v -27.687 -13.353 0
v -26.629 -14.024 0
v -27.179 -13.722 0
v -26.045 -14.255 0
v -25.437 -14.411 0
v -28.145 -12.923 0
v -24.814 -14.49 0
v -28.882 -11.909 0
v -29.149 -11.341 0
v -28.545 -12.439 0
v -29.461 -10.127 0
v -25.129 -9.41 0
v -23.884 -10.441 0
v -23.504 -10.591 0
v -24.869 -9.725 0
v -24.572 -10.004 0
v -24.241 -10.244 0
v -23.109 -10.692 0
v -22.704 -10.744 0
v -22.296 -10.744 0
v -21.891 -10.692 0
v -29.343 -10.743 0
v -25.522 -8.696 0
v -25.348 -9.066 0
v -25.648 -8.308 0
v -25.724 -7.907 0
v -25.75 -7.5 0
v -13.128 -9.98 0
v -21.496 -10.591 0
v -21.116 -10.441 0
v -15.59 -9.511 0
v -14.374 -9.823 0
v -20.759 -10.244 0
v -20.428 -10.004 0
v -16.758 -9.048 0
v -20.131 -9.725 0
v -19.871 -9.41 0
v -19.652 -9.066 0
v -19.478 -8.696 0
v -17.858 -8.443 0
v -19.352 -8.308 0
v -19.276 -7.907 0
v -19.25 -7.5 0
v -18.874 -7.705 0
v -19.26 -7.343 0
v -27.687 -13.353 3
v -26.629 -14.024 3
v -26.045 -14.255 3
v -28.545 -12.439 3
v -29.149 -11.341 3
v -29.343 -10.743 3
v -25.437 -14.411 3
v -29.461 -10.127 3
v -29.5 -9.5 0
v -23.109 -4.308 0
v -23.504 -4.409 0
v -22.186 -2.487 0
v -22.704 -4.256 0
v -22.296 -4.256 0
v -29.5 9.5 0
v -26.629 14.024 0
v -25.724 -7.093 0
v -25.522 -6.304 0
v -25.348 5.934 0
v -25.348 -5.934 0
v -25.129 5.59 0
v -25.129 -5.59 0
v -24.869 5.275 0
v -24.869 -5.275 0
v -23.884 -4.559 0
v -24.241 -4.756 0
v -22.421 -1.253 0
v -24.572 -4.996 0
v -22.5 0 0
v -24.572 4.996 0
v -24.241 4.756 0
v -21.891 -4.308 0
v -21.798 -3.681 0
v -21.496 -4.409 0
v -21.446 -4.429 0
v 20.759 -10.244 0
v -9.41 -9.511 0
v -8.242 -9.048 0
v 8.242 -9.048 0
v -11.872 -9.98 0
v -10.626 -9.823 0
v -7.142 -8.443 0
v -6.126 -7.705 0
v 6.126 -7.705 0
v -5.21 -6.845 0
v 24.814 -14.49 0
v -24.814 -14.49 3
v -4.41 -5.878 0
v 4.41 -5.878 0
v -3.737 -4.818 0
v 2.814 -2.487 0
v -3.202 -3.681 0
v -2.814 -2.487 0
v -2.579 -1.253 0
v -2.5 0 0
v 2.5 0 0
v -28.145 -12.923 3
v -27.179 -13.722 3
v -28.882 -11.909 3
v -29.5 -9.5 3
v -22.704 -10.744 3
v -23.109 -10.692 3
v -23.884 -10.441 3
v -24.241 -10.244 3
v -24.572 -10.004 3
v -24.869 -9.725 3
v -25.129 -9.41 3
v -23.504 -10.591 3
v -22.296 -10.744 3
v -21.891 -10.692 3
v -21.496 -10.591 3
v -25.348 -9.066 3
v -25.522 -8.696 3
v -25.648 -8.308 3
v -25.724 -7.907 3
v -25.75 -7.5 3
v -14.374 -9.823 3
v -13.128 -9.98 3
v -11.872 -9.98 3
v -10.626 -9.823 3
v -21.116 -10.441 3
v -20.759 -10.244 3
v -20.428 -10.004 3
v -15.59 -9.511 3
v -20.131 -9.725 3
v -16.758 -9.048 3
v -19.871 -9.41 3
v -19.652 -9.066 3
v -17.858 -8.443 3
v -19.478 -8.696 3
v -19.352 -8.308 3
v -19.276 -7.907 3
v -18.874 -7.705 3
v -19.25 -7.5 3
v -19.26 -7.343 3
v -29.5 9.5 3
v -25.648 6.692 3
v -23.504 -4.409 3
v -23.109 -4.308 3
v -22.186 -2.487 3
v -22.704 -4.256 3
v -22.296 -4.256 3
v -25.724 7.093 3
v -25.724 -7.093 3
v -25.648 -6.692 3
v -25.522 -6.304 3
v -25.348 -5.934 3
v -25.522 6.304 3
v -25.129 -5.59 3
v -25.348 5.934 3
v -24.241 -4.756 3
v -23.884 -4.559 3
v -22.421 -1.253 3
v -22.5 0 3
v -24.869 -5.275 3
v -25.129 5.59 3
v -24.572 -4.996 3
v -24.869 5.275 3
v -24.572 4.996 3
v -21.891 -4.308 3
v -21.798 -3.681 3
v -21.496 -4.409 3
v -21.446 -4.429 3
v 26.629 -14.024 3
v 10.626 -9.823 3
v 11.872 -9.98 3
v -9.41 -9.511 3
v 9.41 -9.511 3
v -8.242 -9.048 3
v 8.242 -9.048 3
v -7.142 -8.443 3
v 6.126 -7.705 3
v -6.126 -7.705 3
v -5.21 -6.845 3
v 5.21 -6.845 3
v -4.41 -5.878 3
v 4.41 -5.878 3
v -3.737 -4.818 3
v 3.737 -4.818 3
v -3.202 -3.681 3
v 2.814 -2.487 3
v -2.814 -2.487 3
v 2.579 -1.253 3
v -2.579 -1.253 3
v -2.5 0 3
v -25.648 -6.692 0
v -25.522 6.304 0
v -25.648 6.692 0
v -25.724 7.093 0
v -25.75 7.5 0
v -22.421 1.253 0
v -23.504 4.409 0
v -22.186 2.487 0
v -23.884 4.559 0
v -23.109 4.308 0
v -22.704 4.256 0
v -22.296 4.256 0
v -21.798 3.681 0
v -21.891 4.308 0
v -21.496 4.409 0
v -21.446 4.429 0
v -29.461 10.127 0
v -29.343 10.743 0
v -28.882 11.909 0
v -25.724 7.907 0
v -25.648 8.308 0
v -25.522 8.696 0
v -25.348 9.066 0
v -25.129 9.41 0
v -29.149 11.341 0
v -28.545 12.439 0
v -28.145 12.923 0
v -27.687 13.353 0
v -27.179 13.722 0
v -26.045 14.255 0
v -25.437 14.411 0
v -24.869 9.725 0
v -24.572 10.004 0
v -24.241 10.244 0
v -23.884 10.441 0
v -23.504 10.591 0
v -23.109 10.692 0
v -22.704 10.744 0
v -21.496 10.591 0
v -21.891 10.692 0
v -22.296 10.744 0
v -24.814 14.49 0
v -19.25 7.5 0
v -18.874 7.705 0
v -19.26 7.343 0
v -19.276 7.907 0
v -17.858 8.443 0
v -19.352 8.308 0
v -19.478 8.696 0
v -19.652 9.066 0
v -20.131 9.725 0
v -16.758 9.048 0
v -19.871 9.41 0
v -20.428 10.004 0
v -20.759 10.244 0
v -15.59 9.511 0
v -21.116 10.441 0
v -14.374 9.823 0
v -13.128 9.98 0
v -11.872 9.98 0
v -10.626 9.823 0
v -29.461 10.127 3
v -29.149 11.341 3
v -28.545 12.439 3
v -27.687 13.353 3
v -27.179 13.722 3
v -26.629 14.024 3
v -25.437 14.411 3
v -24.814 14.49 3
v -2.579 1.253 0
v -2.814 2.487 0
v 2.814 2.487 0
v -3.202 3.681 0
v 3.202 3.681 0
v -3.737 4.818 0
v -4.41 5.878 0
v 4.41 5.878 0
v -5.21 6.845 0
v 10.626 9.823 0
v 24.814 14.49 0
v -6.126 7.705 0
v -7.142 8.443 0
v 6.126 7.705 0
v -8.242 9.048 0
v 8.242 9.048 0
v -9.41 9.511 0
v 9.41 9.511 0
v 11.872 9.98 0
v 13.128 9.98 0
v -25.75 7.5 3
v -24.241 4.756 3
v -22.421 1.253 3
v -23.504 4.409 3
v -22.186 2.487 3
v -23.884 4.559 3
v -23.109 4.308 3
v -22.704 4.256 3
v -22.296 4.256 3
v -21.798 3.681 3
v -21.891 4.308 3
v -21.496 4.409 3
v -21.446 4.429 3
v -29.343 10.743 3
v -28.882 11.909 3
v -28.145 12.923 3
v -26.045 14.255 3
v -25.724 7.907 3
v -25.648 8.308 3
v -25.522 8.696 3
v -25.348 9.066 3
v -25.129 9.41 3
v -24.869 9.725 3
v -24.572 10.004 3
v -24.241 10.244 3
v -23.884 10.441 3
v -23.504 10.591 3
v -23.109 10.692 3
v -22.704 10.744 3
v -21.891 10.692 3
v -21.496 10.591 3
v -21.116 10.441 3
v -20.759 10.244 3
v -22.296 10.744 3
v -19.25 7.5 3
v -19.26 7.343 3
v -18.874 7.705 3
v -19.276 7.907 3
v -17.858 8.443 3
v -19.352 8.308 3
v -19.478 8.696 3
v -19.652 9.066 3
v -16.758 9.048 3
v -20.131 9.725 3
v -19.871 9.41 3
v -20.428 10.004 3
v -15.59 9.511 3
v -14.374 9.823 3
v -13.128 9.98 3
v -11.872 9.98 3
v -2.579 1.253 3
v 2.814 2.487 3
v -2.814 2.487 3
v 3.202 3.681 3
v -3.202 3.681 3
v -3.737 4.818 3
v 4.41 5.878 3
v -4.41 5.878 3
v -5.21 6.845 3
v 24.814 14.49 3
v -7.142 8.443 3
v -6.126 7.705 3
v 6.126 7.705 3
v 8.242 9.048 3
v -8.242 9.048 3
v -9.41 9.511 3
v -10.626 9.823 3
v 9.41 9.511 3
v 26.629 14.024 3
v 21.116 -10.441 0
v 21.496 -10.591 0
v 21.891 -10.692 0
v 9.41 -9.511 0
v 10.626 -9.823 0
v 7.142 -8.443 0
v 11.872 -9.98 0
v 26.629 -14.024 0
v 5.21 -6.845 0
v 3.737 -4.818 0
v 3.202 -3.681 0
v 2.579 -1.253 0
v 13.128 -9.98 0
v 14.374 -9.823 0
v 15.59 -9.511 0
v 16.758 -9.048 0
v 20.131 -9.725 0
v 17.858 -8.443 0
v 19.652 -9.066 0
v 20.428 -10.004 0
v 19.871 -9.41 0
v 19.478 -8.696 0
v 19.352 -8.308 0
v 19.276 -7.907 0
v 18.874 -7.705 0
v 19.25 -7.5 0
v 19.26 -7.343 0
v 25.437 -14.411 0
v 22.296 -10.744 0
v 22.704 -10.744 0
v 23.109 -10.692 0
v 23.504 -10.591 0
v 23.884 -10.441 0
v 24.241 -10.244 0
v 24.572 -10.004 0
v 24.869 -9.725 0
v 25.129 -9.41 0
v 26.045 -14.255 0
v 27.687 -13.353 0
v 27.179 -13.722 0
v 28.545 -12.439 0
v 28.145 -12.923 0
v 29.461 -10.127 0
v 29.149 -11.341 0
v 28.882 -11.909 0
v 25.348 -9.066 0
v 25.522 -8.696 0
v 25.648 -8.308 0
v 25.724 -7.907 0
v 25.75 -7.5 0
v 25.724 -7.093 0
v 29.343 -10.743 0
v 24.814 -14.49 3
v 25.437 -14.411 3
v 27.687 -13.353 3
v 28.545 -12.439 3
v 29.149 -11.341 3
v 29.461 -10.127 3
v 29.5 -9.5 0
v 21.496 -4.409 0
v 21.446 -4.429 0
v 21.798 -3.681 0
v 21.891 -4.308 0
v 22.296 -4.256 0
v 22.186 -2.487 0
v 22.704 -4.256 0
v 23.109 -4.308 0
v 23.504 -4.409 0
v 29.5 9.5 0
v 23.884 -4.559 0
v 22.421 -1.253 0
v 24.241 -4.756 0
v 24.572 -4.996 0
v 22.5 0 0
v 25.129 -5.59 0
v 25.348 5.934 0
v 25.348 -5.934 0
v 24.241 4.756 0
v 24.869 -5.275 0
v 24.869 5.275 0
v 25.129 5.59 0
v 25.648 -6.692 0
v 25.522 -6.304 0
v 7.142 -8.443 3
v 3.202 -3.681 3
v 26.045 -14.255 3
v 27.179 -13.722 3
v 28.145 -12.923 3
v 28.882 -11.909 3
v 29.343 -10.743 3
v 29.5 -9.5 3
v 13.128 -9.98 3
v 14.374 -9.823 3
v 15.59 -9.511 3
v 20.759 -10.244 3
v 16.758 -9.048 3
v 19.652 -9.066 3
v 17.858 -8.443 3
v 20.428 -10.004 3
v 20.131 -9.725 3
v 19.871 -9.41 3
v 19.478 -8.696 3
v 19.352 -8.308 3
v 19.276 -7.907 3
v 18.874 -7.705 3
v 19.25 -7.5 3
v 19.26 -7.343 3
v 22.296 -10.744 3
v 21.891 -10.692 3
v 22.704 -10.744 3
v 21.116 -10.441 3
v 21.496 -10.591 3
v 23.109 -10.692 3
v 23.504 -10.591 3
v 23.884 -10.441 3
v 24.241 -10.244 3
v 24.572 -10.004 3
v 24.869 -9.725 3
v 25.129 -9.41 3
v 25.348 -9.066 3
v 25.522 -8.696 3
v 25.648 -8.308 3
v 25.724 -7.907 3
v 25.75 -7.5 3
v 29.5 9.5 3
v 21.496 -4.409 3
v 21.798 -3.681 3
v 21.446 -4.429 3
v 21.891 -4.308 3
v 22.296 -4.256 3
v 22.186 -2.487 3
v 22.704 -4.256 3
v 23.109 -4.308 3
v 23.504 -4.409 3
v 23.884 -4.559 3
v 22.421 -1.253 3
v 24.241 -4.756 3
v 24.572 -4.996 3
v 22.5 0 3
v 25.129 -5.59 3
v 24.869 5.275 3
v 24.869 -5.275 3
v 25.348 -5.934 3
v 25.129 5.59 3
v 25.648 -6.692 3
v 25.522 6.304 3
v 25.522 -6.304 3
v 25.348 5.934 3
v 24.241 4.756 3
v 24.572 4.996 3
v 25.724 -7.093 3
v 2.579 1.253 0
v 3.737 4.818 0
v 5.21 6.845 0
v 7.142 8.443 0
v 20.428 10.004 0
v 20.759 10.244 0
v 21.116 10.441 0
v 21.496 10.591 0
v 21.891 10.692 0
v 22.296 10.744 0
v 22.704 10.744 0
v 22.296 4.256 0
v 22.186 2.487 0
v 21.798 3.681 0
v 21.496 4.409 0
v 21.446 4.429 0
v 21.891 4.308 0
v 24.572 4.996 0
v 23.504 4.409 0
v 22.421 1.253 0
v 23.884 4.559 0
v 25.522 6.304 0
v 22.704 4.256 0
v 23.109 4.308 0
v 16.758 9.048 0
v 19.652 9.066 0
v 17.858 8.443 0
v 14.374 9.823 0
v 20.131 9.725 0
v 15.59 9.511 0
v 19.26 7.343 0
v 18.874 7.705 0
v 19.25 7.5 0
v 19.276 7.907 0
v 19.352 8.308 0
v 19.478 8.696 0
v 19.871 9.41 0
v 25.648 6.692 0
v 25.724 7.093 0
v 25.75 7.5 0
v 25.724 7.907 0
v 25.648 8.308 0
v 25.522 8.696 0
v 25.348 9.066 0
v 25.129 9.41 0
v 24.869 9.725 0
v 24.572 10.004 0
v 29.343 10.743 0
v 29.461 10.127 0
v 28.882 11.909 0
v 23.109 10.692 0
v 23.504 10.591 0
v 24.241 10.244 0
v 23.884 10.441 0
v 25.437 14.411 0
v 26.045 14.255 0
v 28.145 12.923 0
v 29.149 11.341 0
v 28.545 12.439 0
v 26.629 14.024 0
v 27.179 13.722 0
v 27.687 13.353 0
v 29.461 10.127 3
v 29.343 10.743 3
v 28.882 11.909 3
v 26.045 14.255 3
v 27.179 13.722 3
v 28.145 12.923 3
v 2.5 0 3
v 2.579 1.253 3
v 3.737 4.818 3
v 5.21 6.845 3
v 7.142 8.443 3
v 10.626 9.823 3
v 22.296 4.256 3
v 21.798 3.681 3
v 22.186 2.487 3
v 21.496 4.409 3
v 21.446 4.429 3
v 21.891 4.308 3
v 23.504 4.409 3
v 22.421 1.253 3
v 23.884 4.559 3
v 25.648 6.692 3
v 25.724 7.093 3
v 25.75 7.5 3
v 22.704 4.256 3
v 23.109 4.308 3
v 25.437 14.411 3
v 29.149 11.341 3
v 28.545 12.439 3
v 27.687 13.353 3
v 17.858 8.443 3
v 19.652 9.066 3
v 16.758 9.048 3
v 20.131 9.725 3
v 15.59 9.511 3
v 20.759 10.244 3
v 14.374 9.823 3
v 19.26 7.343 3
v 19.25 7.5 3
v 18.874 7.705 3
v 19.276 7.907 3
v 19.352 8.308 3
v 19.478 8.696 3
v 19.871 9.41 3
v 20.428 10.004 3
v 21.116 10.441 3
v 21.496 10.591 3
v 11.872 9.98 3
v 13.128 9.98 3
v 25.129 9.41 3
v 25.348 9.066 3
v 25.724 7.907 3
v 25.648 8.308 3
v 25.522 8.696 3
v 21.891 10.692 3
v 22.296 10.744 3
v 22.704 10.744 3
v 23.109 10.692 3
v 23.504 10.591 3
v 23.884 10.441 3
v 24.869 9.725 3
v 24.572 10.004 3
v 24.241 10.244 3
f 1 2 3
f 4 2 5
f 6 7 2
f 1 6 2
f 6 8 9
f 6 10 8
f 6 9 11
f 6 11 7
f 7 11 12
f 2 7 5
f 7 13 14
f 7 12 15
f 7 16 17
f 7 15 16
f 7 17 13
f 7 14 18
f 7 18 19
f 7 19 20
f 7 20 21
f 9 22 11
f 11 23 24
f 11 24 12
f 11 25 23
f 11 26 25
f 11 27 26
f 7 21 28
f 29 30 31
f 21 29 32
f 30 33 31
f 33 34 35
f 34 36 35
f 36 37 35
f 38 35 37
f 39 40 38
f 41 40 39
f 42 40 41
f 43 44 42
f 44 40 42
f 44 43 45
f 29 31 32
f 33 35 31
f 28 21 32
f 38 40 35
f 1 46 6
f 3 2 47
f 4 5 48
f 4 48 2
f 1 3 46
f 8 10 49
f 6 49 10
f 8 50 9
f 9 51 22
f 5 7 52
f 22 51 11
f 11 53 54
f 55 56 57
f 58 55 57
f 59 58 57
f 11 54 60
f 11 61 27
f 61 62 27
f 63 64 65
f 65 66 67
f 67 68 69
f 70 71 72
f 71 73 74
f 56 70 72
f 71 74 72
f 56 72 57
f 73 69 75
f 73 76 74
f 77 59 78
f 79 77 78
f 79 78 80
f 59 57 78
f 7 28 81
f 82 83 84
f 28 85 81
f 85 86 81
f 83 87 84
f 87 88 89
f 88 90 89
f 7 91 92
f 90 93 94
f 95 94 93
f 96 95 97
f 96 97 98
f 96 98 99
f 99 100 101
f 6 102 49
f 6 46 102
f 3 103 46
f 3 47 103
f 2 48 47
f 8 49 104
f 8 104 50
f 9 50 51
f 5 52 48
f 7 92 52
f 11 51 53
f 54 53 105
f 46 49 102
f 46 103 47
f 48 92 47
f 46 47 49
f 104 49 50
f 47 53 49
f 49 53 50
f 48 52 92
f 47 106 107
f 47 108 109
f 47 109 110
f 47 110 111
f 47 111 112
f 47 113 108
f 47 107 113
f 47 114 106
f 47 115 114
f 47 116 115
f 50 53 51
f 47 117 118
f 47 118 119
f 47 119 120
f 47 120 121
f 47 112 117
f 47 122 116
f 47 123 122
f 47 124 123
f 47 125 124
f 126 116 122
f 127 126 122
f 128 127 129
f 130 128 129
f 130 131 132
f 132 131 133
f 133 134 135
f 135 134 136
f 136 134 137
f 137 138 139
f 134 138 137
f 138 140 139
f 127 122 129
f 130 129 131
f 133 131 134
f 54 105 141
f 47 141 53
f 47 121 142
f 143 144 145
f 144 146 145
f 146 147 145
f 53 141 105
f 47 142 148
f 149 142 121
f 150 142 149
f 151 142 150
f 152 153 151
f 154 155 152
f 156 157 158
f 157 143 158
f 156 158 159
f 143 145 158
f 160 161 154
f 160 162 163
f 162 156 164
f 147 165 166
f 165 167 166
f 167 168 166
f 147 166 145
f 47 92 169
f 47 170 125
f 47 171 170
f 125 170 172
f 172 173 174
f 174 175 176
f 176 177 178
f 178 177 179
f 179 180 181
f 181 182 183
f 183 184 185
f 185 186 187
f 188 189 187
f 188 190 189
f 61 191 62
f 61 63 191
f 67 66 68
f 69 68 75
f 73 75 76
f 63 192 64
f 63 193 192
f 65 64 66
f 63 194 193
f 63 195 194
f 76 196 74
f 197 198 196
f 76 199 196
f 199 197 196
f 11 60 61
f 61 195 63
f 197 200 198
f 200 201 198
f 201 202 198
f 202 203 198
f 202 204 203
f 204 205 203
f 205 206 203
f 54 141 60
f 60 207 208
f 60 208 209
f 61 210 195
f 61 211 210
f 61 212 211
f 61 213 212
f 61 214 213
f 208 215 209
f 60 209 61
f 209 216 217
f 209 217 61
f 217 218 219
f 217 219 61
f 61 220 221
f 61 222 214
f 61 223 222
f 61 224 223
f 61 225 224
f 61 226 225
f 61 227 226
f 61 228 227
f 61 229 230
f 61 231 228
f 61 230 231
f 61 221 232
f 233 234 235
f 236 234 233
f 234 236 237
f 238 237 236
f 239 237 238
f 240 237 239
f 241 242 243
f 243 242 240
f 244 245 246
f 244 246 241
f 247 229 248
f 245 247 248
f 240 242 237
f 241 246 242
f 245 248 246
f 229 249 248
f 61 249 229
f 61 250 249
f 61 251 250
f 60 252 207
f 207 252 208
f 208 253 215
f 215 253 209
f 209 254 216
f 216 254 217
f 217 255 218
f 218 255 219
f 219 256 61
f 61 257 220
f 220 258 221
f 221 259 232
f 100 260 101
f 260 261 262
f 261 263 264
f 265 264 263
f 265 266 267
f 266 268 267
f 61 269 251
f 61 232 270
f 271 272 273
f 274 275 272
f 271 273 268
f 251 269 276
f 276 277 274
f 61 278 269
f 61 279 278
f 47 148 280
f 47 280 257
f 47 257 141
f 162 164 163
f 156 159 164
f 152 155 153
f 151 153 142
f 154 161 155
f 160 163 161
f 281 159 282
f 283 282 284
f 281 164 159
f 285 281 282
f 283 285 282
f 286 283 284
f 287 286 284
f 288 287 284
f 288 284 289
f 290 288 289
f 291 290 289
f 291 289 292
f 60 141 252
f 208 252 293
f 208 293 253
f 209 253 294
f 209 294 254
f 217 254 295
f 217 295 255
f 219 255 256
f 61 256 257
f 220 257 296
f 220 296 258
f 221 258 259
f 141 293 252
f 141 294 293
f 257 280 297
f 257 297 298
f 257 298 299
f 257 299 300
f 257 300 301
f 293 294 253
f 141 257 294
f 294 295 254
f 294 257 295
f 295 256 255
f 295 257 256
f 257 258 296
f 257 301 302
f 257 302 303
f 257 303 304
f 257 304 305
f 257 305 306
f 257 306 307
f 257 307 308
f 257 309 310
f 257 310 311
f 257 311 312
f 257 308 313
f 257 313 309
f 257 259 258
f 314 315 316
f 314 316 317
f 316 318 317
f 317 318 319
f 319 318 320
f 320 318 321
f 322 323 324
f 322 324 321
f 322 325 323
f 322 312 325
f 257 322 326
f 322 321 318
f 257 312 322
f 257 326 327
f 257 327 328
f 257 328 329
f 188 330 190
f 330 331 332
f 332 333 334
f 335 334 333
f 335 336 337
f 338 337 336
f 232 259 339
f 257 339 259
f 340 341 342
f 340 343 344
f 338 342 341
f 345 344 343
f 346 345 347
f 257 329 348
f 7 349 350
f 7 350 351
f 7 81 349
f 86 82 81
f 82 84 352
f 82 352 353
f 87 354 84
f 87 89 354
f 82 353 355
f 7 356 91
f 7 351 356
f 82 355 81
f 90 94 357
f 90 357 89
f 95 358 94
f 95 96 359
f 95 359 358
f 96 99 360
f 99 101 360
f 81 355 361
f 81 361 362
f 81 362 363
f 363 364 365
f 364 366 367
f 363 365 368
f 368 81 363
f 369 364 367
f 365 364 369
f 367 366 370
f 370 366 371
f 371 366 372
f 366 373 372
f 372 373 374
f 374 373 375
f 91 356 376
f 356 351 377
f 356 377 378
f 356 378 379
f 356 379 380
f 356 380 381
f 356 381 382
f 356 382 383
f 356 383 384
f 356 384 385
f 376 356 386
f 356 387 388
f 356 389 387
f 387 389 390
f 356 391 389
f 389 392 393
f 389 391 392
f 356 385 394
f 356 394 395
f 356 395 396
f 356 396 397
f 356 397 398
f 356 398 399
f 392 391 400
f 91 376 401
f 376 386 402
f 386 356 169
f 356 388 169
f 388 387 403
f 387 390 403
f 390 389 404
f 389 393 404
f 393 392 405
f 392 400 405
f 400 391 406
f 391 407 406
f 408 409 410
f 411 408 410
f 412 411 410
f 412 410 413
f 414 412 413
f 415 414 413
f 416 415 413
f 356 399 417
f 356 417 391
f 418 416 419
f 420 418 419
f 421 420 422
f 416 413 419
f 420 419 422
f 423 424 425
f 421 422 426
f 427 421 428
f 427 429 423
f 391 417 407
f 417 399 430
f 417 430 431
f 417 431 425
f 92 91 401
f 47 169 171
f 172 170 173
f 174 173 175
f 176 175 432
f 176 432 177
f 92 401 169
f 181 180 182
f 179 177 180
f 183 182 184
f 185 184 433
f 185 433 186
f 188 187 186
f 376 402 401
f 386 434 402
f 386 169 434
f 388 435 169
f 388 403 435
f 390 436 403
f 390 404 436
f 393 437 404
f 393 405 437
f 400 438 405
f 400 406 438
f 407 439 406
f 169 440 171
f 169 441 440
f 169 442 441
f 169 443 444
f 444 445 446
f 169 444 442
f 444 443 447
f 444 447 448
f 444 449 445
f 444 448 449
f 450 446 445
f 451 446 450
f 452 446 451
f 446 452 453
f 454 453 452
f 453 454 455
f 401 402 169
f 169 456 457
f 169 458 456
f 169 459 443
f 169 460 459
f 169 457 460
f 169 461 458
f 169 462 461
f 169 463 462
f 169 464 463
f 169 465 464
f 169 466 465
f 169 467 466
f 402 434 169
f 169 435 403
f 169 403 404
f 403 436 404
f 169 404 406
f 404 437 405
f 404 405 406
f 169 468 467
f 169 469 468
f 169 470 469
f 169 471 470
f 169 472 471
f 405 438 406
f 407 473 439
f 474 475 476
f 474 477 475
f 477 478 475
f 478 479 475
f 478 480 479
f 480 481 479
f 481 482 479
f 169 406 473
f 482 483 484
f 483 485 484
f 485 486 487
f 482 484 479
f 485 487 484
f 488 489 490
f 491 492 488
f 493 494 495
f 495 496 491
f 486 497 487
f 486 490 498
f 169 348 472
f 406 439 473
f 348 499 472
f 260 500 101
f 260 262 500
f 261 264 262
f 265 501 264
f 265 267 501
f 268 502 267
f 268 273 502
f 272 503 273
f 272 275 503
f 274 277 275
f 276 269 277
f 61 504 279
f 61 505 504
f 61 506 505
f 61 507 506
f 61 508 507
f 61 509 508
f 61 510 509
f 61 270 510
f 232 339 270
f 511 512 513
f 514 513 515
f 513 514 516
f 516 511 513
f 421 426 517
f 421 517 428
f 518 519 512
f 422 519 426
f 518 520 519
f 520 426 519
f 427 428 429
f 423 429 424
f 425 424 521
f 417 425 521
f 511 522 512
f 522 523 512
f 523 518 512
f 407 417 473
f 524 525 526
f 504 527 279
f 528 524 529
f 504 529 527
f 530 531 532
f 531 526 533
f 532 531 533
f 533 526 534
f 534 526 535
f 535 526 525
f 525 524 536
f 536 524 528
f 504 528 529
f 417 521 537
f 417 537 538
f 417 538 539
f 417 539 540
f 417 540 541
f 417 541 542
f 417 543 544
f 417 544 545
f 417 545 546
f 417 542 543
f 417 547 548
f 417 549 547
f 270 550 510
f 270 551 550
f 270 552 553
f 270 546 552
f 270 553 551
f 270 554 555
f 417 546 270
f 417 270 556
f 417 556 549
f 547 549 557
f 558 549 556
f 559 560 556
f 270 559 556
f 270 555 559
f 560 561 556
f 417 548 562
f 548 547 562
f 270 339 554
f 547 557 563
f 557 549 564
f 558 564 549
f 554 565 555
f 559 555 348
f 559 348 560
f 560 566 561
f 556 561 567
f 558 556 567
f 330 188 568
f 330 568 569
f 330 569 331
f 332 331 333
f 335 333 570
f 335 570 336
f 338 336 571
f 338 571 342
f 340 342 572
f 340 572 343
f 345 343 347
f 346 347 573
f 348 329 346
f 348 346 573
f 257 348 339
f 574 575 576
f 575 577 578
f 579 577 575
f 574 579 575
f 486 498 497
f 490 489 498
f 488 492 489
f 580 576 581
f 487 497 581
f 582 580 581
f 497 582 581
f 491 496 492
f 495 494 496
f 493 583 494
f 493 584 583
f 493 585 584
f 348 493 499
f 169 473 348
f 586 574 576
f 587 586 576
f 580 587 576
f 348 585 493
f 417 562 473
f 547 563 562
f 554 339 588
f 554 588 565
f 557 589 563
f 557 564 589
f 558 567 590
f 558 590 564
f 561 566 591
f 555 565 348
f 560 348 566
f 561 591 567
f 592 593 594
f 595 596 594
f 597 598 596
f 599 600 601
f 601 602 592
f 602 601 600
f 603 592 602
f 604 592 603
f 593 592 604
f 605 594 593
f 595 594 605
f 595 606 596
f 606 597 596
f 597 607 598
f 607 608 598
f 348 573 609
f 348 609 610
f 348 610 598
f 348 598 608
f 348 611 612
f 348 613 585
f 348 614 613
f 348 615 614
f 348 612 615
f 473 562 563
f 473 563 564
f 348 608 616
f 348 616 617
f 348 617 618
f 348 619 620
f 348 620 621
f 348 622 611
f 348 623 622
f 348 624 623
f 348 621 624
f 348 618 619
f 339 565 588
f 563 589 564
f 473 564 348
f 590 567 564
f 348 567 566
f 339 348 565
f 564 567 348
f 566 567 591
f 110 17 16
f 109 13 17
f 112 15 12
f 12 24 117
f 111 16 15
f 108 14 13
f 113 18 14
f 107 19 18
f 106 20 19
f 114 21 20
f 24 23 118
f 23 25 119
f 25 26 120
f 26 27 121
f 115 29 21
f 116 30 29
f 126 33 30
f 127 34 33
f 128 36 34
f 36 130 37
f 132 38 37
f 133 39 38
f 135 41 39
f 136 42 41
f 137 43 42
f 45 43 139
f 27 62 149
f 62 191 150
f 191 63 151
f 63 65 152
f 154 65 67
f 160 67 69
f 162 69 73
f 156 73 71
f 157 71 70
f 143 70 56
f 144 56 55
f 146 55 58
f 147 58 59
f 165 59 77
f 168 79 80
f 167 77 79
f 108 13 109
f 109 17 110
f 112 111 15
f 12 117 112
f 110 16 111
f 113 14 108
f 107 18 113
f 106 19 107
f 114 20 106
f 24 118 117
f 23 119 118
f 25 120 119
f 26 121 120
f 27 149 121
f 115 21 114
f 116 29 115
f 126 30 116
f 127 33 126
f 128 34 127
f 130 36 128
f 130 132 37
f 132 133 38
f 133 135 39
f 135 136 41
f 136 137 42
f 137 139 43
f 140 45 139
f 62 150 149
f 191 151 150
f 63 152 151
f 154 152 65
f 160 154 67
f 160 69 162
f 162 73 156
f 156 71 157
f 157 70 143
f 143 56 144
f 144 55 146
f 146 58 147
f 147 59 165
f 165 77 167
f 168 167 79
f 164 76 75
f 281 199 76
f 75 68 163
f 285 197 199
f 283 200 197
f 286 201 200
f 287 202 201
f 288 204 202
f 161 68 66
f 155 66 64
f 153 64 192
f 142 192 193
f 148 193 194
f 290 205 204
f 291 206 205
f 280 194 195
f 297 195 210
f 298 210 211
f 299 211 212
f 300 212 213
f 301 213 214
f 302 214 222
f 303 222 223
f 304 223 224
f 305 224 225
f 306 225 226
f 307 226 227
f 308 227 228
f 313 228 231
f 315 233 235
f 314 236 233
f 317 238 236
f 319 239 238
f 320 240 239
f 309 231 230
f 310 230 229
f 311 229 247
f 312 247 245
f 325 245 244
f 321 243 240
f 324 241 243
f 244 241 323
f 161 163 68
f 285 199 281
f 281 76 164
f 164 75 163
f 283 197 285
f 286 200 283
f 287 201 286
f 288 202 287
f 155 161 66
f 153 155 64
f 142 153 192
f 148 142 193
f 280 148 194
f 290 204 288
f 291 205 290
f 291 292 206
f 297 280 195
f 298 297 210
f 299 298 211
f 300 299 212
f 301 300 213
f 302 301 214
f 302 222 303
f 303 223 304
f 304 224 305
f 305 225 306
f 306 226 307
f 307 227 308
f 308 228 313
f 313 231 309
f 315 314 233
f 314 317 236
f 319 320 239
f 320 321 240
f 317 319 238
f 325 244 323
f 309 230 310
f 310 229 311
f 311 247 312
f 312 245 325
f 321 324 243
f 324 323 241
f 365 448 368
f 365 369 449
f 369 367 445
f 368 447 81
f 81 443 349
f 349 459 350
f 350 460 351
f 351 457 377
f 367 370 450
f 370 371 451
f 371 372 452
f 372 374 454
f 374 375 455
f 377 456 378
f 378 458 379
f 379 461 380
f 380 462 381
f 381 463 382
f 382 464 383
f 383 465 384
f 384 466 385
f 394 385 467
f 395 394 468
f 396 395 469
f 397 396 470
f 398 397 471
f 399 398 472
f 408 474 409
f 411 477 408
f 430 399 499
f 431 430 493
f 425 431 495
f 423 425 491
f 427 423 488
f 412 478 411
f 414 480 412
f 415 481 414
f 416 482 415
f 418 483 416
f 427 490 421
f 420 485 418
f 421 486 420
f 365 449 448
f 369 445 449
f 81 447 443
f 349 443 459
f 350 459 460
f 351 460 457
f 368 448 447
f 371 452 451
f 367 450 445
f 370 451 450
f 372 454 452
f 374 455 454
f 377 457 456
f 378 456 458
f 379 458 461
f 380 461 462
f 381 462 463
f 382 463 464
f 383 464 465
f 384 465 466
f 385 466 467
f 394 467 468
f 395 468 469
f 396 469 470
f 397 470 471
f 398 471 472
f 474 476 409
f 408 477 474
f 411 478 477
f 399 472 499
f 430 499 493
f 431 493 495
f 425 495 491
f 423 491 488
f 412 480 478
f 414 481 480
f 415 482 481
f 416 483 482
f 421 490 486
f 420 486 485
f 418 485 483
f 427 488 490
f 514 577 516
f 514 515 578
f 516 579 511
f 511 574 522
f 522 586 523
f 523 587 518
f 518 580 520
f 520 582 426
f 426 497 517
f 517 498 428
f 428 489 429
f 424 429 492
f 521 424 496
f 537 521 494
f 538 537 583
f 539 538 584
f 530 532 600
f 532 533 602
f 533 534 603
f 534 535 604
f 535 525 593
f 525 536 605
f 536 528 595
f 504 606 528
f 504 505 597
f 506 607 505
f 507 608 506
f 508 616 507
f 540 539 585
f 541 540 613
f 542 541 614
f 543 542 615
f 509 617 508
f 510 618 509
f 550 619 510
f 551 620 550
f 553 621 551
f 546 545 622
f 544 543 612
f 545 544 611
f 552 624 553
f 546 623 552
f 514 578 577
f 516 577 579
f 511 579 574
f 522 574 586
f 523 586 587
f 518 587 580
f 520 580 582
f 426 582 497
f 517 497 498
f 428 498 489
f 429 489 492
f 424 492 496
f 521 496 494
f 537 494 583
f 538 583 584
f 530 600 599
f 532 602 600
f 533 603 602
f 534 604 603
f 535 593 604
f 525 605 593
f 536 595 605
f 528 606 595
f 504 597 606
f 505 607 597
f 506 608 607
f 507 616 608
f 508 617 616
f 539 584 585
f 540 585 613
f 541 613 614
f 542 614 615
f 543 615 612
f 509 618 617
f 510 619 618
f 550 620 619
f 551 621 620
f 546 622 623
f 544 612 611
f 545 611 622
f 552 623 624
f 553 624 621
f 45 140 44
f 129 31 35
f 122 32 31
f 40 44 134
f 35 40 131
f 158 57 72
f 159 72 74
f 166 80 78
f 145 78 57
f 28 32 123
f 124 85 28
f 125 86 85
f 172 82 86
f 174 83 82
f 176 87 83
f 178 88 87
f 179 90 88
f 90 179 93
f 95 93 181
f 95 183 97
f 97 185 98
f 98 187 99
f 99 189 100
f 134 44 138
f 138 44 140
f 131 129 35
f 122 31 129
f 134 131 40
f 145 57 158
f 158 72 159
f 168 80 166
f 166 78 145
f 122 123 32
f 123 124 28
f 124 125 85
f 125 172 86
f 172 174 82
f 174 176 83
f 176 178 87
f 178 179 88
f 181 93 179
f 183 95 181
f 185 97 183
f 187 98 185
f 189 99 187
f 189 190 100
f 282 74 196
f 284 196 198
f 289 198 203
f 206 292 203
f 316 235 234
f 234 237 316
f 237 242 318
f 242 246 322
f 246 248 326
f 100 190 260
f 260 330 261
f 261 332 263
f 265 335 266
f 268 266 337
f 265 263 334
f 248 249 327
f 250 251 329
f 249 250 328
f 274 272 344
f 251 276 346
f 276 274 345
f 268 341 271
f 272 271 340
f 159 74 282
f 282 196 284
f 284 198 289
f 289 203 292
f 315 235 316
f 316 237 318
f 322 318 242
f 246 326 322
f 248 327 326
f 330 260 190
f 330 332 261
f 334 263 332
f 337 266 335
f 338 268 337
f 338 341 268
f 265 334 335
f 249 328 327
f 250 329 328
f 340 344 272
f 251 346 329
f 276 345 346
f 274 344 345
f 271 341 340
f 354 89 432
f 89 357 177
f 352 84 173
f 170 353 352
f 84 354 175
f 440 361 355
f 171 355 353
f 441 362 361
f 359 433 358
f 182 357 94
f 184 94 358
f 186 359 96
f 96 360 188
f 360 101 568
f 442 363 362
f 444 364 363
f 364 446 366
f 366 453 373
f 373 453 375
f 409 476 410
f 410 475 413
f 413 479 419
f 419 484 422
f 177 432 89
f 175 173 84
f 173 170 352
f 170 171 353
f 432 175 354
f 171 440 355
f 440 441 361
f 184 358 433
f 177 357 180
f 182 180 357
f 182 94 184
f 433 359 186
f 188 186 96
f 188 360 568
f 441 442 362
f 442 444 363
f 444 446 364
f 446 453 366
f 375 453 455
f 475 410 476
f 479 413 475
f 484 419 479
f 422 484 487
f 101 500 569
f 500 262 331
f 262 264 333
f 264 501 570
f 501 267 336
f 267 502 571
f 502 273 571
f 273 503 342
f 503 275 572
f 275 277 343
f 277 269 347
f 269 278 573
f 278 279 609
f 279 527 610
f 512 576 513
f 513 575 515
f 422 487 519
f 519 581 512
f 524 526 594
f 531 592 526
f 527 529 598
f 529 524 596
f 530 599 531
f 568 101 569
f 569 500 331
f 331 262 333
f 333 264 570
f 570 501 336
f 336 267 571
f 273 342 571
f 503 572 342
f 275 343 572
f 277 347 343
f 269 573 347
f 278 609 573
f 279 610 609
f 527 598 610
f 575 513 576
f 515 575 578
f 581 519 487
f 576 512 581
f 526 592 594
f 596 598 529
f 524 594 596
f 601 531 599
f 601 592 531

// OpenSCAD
$fn = 50;

difference() {
	union() {
		hull() {
			translate(v = [-24.5, 9.5, 0]) {
				cylinder(h = 3, r = 5);
			}
			translate(v = [24.5, 9.5, 0]) {
				cylinder(h = 3, r = 5);
			}
			translate(v = [-24.5, -9.5, 0]) {
				cylinder(h = 3, r = 5);
			}
			translate(v = [24.5, -9.5, 0]) {
				cylinder(h = 3, r = 5);
			}
		}
	}
	union() {
		translate(v = [-22.5, -7.5, -100.0]) {
			cylinder(h = 200, r = 3.25);
		}
		translate(v = [-22.5, 7.5, -100.0]) {
			cylinder(h = 200, r = 3.25);
		}
		translate(v = [22.5, -7.5, -100.0]) {
			cylinder(h = 200, r = 3.25);
		}
		translate(v = [22.5, 7.5, -100.0]) {
			cylinder(h = 200, r = 3.25);
		}
		translate(v = [-22.5, -7.5, -100.0]) {
			cylinder(h = 200, r = 1.8);
		}
		translate(v = [-22.5, 7.5, -100.0]) {
			cylinder(h = 200, r = 1.8);
		}
		translate(v = [22.5, -7.5, -100.0]) {
			cylinder(h = 200, r = 1.8);
		}
		translate(v = [22.5, 7.5, -100.0]) {
			cylinder(h = 200, r = 1.8);
		}
		translate(v = [-12.5, 0, 0.0]) {
			cylinder(h = 3, r = 10.0);
		}
		translate(v = [12.5, 0, 0.0]) {
			cylinder(h = 3, r = 10.0);
		}
	}
}
